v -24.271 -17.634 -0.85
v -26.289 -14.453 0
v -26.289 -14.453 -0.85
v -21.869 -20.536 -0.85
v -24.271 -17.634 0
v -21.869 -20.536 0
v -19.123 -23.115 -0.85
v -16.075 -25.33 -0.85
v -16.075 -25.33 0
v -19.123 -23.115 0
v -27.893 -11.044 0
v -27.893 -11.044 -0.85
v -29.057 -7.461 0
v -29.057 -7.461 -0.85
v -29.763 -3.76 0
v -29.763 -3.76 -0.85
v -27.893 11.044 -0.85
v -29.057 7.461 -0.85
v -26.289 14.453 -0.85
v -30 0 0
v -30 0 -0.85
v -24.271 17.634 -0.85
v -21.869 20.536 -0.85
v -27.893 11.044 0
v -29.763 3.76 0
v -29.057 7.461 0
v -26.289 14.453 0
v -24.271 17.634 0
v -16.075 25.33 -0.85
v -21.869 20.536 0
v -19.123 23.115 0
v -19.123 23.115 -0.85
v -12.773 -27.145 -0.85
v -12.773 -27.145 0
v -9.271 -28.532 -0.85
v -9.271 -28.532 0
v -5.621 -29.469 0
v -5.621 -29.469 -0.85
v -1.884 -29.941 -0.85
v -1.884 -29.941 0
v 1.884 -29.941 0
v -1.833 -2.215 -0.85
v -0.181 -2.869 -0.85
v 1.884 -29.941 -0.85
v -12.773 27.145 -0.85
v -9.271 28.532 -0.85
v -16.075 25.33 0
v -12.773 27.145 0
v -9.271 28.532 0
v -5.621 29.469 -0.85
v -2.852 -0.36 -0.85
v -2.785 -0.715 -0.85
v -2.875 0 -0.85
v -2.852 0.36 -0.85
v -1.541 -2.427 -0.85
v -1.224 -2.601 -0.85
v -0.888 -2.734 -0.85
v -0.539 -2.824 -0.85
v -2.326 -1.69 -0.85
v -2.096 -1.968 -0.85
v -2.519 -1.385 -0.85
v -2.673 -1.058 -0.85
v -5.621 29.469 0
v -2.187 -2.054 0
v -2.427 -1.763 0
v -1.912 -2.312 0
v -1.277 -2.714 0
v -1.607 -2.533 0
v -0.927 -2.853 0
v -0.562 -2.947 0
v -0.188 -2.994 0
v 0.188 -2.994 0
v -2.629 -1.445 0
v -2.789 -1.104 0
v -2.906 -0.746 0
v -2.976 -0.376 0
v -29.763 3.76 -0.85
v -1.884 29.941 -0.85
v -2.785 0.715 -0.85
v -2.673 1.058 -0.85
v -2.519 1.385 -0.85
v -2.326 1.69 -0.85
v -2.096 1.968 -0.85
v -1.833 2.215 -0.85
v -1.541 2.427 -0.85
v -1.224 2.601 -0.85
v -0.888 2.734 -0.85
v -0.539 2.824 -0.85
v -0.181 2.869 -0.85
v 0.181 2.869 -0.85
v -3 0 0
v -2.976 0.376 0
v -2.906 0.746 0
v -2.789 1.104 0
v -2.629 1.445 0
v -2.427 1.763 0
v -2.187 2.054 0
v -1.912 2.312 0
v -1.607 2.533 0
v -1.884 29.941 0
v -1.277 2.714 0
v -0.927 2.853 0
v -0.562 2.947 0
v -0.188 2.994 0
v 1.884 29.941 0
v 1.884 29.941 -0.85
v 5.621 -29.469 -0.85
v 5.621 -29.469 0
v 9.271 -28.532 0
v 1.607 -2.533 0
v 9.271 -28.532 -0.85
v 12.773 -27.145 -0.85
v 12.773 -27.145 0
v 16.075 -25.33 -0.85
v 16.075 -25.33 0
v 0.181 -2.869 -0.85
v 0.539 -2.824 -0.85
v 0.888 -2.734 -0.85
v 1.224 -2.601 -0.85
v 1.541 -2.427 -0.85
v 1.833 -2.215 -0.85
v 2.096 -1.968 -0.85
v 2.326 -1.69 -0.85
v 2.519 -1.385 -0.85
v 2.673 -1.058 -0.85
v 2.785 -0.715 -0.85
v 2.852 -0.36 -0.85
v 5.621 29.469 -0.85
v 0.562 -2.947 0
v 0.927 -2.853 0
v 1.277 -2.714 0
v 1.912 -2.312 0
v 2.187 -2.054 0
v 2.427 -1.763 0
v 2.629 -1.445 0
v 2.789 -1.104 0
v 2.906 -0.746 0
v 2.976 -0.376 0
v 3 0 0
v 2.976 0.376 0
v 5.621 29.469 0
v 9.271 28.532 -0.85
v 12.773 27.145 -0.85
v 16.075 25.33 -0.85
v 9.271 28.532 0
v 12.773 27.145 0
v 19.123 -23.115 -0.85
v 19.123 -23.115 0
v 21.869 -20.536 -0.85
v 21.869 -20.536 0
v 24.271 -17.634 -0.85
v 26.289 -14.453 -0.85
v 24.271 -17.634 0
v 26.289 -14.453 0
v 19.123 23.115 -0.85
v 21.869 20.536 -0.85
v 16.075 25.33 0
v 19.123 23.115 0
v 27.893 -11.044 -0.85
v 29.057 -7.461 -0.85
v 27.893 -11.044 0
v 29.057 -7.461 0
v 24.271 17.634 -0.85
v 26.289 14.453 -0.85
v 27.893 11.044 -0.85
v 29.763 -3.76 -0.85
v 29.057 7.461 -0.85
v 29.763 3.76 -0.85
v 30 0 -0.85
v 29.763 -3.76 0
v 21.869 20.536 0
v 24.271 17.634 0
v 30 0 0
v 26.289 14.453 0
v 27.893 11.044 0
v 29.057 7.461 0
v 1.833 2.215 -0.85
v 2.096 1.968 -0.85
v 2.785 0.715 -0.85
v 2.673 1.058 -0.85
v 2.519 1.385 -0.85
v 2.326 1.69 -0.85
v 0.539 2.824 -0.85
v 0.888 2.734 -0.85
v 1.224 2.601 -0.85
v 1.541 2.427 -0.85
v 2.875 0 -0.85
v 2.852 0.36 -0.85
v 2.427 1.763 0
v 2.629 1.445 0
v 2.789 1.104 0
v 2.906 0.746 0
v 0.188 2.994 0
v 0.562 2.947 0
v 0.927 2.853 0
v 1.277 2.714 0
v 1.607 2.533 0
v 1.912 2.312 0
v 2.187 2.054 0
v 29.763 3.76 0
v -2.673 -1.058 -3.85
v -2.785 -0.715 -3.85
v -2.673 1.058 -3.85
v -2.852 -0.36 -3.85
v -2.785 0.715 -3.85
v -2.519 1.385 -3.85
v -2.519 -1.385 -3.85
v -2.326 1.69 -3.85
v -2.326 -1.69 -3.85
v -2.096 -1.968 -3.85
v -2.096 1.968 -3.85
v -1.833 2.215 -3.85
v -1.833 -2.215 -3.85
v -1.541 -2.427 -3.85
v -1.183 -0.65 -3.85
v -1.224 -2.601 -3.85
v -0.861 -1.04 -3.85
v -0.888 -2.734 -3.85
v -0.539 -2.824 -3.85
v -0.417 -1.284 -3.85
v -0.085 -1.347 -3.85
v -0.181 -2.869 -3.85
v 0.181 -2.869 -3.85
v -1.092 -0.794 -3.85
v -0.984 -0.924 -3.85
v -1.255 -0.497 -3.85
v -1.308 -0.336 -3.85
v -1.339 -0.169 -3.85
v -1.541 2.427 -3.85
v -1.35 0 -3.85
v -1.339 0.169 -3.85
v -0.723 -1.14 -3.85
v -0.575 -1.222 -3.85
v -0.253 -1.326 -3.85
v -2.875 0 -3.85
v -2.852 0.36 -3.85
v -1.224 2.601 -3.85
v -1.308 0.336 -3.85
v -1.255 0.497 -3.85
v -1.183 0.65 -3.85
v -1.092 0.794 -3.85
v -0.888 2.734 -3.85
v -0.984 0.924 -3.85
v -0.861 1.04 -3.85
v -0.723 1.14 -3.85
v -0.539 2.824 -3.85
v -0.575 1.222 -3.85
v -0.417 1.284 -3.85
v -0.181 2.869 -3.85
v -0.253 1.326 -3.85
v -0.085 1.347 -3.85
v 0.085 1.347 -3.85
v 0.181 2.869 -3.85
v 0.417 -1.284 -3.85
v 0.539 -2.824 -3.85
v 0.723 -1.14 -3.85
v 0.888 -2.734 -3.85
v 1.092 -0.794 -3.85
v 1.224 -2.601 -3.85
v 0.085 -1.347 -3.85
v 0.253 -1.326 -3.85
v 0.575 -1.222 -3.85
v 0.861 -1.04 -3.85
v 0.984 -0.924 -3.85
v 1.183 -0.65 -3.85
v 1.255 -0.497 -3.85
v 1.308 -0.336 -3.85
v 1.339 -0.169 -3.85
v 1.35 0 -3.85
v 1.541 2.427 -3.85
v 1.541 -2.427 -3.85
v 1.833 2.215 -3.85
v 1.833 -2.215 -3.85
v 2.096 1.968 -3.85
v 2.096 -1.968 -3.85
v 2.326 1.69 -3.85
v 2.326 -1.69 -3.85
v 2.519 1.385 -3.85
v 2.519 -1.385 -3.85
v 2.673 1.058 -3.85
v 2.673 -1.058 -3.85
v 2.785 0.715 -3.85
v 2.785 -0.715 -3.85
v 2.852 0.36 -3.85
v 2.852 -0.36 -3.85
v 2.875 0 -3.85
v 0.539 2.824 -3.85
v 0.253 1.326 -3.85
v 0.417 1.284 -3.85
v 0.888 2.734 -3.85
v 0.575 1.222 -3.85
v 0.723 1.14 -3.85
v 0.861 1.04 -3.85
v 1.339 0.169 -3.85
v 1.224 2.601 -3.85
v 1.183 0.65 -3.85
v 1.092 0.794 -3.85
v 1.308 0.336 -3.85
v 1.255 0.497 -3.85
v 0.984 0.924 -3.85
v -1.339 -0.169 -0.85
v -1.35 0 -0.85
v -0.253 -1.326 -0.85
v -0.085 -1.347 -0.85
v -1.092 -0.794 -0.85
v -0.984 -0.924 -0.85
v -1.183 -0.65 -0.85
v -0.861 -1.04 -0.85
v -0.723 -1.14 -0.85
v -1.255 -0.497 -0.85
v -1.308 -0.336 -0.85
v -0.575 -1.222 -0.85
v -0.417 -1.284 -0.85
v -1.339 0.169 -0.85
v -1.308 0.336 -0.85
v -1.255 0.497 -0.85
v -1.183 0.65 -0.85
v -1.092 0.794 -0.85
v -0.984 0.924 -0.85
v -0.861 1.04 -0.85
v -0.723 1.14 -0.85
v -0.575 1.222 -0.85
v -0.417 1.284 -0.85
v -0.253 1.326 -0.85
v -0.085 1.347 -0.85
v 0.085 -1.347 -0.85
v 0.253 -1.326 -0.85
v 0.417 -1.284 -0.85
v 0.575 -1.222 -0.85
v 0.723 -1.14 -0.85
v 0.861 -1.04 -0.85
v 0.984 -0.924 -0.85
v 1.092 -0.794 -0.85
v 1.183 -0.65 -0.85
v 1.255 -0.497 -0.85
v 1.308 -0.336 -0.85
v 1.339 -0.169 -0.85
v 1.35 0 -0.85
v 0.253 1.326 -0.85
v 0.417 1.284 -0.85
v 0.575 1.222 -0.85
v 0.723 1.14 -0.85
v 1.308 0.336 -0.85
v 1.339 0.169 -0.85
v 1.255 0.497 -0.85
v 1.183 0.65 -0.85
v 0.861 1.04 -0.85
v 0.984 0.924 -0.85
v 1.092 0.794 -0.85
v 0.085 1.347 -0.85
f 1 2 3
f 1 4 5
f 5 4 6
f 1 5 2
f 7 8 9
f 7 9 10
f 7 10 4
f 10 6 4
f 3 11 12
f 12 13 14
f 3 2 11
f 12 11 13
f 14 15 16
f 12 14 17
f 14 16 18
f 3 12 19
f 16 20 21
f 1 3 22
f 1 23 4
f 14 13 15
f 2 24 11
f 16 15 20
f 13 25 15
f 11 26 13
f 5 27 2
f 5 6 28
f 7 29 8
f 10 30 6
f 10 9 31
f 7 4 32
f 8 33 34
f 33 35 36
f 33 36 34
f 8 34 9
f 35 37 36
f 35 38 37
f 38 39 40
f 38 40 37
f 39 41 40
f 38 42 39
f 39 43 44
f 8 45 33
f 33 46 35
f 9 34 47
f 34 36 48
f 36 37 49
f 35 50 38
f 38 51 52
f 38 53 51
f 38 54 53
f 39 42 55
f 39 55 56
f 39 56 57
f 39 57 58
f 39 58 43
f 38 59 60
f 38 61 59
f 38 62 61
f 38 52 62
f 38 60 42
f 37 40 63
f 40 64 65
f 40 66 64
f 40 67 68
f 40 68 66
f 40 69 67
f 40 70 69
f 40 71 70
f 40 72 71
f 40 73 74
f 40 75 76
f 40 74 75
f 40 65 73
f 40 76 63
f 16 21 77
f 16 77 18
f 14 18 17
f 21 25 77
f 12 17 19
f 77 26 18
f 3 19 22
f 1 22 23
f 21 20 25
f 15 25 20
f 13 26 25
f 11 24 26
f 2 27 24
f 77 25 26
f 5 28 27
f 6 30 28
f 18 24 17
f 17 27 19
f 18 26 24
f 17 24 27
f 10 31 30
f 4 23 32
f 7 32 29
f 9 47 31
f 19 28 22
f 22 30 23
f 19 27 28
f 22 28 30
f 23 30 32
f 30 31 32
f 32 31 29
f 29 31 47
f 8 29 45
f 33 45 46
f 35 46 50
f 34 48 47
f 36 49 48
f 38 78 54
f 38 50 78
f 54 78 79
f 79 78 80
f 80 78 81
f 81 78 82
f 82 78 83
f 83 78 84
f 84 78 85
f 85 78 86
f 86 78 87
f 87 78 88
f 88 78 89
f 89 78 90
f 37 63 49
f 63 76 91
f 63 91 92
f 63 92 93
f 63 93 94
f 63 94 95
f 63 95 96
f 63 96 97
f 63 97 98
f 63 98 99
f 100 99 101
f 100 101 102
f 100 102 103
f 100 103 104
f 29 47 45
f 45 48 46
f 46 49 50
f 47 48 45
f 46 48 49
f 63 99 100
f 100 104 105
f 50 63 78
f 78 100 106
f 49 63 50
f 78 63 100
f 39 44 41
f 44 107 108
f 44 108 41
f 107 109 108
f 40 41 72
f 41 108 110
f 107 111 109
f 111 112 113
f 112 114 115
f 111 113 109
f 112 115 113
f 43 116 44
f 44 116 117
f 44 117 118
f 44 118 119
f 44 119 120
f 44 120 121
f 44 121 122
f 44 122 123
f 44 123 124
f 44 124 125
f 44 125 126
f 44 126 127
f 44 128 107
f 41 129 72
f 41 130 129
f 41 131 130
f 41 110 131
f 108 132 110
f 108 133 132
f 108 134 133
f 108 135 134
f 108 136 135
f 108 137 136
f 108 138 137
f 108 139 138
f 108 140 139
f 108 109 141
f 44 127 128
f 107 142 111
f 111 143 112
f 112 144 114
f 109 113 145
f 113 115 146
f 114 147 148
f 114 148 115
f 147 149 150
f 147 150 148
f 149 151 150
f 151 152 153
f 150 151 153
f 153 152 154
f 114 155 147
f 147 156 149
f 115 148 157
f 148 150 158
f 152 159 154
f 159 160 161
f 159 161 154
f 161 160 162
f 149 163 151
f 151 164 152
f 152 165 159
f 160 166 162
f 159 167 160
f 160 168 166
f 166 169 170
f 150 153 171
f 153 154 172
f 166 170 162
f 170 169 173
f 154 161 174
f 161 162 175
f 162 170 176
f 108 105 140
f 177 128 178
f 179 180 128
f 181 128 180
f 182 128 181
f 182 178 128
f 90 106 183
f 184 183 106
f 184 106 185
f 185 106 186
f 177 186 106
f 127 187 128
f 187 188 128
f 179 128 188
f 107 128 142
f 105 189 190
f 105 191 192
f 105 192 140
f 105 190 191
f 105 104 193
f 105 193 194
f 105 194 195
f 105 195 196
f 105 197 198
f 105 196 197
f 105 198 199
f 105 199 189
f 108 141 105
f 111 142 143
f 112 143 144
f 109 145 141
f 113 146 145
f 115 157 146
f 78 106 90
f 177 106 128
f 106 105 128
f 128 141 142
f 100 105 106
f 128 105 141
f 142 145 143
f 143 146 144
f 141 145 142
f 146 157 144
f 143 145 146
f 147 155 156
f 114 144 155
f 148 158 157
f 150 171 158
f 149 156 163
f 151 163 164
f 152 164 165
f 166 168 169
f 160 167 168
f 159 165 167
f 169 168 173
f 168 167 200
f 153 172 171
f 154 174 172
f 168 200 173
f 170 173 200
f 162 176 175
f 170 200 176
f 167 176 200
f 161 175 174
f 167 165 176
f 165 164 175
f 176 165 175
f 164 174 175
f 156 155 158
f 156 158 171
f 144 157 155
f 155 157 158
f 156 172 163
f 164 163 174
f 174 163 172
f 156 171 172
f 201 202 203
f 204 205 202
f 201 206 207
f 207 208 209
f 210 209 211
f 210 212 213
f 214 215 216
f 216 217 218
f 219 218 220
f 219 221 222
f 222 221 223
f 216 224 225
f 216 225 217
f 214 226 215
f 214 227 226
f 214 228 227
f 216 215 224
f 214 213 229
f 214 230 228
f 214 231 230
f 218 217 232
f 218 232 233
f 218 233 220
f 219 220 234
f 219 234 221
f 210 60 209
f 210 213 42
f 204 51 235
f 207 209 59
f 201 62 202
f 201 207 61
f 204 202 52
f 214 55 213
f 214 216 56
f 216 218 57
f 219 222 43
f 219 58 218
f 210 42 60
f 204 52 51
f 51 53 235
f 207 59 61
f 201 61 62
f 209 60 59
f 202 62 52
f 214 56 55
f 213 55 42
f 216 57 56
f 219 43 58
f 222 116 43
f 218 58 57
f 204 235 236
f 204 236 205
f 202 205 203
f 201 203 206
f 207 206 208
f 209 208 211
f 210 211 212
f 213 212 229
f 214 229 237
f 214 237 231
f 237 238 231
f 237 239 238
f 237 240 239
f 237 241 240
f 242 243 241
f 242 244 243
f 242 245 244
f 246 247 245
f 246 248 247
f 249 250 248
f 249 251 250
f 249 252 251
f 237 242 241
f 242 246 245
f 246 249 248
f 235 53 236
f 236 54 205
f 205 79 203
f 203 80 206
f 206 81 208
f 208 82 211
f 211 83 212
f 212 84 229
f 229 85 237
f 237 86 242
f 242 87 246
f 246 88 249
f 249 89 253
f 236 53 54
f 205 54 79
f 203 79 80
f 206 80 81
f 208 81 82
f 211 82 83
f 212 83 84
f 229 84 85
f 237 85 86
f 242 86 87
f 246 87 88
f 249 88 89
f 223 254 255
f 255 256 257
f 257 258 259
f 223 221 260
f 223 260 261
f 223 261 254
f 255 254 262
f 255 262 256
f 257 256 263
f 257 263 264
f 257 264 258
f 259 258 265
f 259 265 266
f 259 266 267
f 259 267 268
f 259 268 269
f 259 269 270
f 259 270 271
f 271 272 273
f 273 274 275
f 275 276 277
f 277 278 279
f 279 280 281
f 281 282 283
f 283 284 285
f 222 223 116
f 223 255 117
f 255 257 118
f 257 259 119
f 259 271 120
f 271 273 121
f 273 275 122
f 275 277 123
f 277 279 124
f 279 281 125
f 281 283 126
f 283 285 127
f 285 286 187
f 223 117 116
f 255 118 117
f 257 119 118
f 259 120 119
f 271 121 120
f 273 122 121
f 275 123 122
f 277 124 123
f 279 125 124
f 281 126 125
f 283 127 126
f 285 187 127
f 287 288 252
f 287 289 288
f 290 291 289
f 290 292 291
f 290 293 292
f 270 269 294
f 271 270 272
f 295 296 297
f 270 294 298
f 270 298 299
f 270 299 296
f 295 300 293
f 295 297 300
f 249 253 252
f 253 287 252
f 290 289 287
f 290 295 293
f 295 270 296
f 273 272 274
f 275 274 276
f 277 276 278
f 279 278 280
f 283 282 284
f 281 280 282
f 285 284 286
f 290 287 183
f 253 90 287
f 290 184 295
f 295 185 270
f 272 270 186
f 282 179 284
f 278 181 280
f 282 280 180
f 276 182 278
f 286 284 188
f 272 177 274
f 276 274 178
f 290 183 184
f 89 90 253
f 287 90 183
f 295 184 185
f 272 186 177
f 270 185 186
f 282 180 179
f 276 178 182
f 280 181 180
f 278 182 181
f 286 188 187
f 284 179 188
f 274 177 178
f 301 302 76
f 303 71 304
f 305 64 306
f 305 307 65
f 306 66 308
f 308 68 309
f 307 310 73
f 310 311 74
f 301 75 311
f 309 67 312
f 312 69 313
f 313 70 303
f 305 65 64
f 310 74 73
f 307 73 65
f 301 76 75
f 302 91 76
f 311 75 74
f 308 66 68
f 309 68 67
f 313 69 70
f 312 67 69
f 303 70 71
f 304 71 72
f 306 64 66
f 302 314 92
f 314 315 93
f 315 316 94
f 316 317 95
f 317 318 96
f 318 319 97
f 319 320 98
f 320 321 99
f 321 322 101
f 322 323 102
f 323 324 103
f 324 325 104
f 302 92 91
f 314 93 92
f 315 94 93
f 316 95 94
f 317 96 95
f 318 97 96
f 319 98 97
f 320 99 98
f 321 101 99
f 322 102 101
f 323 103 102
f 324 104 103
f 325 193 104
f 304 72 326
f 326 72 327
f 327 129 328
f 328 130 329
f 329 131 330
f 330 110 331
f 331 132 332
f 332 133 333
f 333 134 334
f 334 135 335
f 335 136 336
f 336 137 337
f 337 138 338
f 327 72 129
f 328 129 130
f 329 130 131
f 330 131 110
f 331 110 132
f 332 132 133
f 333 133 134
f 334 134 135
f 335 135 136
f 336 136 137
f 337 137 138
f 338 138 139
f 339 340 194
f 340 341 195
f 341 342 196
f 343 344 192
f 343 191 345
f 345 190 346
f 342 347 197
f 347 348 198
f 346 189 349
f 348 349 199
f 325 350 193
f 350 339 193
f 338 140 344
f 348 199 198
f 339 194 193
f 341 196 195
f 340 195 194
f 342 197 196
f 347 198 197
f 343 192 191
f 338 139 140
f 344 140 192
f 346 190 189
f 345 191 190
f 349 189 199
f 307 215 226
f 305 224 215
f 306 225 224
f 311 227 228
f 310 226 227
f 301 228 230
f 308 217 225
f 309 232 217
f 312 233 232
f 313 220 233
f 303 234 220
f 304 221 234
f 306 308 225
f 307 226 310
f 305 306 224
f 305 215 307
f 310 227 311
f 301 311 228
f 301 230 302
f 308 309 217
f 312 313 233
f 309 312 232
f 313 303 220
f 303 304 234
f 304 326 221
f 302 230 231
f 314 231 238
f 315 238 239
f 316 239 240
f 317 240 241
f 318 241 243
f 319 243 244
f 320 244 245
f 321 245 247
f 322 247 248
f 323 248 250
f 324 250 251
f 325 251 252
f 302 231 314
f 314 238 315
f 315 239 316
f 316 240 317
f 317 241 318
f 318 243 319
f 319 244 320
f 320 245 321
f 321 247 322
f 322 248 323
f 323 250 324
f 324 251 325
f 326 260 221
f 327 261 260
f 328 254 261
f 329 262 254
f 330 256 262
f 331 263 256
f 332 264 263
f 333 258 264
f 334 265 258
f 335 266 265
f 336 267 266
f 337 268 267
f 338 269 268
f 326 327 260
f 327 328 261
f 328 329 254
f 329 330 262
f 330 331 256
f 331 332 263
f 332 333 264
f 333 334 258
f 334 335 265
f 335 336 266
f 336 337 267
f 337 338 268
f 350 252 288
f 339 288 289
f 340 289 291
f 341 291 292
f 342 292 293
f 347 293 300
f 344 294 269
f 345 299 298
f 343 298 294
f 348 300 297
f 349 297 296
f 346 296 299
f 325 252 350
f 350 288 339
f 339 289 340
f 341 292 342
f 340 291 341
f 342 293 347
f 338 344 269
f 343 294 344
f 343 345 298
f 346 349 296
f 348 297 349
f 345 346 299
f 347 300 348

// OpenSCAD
$fn = 50;


difference() {
	union() {
		translate(v = [0, 0, -0.8500000000]) {
			cylinder(h = 0.8500000000, r = 30.0000000000);
		}
		#translate(v = [0, 0, -3.8500000000]) {
			cylinder(h = 3.8500000000, r = 2.8750000000);
		}
	}
	union() {
		translate(v = [0, 0, 0]) {
			rotate(a = [0, 0, 0]) {
				difference() {
					union() {
						translate(v = [0, 0, -3.8500000000]) {
							cylinder(h = 3.8500000000, r = 1.0000000000);
						}
						translate(v = [0, 0, -0.8500000000]) {
							cylinder(h = 0.8500000000, r1 = 1.3500000000, r2 = 3.0000000000);
						}
						translate(v = [0, 0, -3.8500000000]) {
							cylinder(h = 3.8500000000, r = 1.3500000000);
						}
						translate(v = [0, 0, -3.8500000000]) {
							cylinder(h = 3.8500000000, r = 1.0000000000);
						}
					}
					union();
				}
			}
		}
	}
}
